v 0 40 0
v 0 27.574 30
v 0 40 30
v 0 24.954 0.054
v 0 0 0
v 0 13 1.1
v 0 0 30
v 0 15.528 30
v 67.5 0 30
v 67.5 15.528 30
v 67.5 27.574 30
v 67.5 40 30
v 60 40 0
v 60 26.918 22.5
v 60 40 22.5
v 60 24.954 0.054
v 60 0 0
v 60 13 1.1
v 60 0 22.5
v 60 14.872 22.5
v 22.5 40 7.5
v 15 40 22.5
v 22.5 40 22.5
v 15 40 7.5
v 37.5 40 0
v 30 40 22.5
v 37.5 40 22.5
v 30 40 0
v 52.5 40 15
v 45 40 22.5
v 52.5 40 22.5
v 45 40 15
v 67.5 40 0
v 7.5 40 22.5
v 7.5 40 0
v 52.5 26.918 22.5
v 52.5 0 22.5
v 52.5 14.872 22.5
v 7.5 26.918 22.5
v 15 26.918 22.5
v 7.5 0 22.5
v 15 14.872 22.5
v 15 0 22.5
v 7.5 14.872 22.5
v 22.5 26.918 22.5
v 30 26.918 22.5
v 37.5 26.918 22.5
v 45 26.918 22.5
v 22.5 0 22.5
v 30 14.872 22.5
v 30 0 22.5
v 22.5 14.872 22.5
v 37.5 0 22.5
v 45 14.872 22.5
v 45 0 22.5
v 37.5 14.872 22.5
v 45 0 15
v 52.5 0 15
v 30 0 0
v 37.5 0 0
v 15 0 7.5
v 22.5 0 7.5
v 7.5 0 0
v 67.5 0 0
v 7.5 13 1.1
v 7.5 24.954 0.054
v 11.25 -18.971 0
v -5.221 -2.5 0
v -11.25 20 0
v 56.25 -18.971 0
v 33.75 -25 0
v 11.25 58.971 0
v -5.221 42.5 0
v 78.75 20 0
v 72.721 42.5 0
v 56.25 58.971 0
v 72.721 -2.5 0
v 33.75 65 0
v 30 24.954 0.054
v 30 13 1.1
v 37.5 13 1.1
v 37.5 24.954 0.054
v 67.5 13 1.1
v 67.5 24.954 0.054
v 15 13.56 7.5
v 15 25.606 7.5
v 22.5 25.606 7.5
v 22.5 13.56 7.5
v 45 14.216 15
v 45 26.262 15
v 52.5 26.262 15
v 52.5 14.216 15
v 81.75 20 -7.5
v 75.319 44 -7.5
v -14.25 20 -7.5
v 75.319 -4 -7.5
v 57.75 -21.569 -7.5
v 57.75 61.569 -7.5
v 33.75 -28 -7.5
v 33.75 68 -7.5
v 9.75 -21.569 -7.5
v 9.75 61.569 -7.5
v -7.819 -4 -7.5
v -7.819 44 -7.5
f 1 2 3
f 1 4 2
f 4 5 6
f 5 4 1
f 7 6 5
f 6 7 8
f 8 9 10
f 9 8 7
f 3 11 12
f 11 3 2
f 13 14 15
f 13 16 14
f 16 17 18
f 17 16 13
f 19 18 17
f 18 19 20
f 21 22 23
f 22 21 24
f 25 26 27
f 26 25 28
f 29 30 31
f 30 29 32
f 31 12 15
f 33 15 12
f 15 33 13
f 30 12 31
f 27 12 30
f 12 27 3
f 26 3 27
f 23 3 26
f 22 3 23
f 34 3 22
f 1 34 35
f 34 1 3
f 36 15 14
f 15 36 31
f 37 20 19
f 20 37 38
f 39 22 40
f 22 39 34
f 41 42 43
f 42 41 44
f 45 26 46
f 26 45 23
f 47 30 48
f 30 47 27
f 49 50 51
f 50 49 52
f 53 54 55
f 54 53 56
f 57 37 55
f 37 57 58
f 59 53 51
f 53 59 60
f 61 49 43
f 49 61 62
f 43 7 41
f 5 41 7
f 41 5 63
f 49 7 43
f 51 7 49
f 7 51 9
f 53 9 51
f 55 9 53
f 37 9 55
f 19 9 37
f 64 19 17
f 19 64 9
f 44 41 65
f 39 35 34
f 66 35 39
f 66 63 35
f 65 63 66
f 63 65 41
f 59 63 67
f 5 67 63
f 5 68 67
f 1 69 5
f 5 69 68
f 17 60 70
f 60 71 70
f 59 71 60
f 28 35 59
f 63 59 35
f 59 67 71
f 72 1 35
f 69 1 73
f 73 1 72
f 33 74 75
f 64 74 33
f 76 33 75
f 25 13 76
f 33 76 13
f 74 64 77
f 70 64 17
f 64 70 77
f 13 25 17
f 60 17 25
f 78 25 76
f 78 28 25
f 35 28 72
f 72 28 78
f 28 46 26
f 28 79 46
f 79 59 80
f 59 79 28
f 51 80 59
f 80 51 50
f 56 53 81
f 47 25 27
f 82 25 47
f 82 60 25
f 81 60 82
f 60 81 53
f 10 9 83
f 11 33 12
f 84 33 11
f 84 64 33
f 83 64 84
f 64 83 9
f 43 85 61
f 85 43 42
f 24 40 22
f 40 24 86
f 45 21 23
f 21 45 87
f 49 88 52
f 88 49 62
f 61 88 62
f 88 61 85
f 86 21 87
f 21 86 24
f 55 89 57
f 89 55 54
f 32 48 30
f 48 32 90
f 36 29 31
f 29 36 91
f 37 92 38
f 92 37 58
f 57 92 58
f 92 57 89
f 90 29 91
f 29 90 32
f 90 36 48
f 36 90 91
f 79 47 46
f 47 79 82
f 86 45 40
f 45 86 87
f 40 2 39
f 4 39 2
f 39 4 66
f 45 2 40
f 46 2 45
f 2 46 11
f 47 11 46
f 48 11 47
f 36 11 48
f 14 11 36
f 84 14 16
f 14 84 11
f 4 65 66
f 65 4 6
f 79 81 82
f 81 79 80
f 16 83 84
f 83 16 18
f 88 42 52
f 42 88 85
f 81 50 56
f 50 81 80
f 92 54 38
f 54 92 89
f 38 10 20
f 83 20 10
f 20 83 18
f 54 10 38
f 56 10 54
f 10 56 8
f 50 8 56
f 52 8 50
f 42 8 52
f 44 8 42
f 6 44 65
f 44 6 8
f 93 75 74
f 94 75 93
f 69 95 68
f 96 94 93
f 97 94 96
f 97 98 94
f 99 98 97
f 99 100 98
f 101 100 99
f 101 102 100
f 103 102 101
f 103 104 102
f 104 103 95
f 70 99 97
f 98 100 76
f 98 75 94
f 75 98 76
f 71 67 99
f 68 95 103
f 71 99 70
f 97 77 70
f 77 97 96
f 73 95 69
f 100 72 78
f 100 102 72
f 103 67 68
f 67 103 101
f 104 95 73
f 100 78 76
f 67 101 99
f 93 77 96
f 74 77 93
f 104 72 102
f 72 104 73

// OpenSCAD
height = 30;
depth = 40;

width = height/4;

cdHole = 12;

//Base
color("orange")
    translate([height+(width/2),(height/2)+(width/1.5),-width])
        cylinder(width,height*1.6,height*1.5, $fn=12);

difference() {
    //Logo
    union() {
        translate([0, 0, height-width])
            cube([height*2,depth,width]);

        cube([width,depth,height]);

        translate([height, 0, 0])
            cube([width,depth,height]);

        translate([height*2, 0, 0])
            cube([width,depth,height]);

        translate([height*0.5, 0, width])
            cube([width,depth,height-width]);

        translate([height*1.5, 0, width*2])
            cube([width,depth,height-(2*width)]);
    }

    //hole
    translate([-height/2,(depth/2)-width+0.5,1.1])
        rotate([-5,0,0])
            cube([height*3,cdHole,height*2]);
}
